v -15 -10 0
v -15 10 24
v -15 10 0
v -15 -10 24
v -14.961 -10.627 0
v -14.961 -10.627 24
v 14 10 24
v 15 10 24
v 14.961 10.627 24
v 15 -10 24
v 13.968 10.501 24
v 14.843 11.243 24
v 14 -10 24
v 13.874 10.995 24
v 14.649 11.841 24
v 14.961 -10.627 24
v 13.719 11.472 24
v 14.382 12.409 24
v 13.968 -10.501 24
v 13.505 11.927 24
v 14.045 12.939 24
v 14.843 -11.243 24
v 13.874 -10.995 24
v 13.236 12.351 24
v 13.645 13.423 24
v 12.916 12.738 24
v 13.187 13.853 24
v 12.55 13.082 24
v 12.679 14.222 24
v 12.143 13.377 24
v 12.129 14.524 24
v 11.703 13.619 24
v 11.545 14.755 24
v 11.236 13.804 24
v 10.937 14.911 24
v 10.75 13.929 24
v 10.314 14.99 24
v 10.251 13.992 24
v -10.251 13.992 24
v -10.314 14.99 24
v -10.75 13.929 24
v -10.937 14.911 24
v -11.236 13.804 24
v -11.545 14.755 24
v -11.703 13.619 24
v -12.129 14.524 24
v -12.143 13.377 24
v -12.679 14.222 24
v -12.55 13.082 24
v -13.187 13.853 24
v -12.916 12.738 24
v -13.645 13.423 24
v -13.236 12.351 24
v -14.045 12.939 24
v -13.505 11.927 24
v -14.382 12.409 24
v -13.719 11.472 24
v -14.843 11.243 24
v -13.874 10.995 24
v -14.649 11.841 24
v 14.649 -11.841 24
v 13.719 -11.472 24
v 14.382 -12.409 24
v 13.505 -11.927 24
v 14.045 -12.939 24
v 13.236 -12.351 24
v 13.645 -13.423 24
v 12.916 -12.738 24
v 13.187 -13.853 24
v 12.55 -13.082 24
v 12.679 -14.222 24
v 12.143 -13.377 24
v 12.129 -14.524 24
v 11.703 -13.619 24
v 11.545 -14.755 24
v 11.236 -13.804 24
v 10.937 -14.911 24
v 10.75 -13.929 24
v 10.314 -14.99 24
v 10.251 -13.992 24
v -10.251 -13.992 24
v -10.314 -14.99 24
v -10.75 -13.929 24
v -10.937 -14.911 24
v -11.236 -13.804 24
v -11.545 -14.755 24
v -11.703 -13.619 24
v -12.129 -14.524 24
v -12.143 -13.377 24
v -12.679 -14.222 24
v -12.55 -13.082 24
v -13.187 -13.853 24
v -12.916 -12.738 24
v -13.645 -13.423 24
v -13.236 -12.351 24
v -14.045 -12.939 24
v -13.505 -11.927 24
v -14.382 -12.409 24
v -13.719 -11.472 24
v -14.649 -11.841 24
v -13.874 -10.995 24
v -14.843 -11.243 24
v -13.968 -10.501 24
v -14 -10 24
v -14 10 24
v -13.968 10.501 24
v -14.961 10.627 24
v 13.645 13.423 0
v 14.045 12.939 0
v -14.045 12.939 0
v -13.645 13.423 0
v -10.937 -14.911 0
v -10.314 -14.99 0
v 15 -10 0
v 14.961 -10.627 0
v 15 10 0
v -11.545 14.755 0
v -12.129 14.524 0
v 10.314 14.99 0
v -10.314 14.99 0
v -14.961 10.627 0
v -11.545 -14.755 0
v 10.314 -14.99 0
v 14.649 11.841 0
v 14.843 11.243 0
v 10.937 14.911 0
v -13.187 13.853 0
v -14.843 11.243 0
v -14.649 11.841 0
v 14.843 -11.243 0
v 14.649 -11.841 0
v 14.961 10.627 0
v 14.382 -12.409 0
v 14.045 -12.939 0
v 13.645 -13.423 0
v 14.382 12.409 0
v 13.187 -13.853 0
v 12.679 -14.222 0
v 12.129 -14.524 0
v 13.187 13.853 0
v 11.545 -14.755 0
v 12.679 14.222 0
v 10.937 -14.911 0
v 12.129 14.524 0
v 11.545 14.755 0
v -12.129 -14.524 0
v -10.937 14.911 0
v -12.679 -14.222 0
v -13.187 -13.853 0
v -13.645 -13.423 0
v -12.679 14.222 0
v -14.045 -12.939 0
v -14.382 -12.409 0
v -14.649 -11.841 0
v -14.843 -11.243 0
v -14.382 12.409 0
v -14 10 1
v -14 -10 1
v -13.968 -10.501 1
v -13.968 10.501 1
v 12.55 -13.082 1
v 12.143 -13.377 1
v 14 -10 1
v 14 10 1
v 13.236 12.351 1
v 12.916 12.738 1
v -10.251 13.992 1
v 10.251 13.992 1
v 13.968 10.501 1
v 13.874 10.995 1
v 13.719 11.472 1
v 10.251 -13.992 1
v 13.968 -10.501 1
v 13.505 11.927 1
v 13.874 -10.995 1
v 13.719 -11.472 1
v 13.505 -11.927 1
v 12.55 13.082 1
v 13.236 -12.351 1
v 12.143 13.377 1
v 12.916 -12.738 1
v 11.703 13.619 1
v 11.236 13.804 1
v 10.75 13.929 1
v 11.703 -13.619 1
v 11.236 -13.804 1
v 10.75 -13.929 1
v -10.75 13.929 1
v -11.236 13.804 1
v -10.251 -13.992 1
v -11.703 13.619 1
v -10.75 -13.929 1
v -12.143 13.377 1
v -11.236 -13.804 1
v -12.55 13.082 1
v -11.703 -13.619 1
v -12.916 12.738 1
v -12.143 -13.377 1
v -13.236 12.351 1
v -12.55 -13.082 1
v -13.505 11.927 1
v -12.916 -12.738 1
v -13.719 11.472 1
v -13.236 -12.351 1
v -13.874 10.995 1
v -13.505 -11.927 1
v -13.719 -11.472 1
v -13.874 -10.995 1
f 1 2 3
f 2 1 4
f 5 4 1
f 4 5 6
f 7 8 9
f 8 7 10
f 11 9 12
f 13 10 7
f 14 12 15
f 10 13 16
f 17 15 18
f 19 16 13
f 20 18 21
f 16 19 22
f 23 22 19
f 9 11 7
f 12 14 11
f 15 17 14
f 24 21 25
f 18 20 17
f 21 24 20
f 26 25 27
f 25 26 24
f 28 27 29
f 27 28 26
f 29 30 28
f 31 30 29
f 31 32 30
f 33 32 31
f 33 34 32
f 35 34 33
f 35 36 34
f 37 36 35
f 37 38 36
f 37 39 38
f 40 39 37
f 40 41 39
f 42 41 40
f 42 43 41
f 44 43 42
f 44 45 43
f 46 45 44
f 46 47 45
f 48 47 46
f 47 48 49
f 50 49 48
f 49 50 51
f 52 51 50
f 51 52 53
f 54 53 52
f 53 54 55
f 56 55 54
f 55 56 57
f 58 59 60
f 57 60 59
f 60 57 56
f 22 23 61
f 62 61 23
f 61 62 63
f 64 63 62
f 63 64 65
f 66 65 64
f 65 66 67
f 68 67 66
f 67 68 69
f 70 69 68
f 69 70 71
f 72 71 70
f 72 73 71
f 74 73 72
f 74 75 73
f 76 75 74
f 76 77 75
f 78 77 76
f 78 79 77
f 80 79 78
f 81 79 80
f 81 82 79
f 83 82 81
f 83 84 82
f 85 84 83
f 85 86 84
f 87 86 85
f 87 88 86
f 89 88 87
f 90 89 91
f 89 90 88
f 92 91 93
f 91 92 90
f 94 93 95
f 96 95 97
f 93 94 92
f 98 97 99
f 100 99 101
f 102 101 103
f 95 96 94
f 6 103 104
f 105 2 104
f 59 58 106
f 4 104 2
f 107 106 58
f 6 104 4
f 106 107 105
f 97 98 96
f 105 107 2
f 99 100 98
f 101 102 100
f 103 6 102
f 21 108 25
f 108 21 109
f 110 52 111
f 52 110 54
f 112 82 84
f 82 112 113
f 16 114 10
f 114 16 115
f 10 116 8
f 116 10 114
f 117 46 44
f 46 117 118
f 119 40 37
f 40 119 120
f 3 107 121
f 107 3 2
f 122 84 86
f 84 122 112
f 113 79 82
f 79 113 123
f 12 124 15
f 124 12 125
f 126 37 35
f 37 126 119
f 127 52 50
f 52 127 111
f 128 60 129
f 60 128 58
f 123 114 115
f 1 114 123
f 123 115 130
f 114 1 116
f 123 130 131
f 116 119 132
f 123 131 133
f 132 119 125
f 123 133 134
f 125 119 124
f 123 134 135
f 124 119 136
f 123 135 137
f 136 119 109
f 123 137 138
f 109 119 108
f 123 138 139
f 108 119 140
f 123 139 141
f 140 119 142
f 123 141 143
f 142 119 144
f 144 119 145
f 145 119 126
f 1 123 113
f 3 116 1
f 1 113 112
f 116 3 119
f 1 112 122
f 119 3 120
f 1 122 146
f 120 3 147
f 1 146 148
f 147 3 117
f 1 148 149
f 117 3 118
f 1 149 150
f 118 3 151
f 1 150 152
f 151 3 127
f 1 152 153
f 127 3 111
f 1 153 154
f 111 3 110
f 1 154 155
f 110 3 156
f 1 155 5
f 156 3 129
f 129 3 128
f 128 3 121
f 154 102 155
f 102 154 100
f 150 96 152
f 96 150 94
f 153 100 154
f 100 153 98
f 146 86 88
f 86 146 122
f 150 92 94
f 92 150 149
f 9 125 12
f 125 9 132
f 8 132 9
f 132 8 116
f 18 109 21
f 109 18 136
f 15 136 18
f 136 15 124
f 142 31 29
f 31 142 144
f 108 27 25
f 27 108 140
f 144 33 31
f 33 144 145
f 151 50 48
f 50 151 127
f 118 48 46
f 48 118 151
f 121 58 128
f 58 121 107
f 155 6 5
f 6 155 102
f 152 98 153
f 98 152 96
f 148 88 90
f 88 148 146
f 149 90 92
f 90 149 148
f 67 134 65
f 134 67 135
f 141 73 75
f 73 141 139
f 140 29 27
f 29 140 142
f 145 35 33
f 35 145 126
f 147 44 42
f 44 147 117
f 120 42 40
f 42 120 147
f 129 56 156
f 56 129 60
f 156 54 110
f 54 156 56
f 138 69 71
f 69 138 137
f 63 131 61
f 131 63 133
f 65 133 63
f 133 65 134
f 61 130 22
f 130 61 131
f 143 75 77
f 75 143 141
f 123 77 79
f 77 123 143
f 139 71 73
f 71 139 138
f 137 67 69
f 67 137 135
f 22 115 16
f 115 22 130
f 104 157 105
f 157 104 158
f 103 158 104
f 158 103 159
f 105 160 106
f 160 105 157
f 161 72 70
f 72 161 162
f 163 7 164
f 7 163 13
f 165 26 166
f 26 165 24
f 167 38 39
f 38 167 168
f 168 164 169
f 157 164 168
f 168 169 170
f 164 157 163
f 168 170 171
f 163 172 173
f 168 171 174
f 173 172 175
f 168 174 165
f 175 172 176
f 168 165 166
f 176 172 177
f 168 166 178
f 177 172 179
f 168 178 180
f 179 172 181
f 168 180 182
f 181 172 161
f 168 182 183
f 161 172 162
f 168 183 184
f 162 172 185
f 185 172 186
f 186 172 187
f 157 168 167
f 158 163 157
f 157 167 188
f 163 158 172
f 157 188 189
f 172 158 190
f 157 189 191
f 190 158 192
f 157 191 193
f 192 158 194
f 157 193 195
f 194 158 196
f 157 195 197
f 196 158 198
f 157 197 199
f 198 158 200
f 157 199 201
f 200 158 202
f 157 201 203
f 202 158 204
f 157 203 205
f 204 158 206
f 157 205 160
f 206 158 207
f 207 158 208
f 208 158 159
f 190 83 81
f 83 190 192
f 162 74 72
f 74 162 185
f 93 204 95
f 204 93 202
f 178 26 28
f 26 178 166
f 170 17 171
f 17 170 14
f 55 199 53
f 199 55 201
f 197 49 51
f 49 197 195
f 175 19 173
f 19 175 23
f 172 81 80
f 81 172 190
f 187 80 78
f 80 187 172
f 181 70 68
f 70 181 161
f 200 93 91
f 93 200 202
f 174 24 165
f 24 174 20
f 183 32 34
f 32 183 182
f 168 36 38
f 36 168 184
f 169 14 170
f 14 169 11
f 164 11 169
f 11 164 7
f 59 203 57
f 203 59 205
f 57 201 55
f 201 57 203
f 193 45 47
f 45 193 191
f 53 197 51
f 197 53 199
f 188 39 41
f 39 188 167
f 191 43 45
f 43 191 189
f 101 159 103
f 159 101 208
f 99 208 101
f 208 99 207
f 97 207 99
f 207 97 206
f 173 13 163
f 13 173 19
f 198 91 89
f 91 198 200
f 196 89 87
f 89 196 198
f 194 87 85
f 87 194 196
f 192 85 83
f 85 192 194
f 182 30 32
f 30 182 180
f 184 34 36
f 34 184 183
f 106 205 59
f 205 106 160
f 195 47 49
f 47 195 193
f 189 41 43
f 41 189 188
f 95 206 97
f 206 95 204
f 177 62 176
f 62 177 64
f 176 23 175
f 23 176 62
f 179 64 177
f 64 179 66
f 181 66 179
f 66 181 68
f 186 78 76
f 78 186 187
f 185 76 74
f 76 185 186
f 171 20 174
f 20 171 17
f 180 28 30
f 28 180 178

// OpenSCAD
$fn = 50;


difference() {
	union() {
		hull() {
			translate(v = [-10.0000000000, 10.0000000000, 0]) {
				cylinder(h = 24, r = 5);
			}
			translate(v = [10.0000000000, 10.0000000000, 0]) {
				cylinder(h = 24, r = 5);
			}
			translate(v = [-10.0000000000, -10.0000000000, 0]) {
				cylinder(h = 24, r = 5);
			}
			translate(v = [10.0000000000, -10.0000000000, 0]) {
				cylinder(h = 24, r = 5);
			}
		}
	}
	union() {
		translate(v = [0, 0, 1]) {
			#hull() {
				translate(v = [-10.0000000000, 10.0000000000, 0]) {
					cylinder(h = 23, r = 4);
				}
				translate(v = [10.0000000000, 10.0000000000, 0]) {
					cylinder(h = 23, r = 4);
				}
				translate(v = [-10.0000000000, -10.0000000000, 0]) {
					cylinder(h = 23, r = 4);
				}
				translate(v = [10.0000000000, -10.0000000000, 0]) {
					cylinder(h = 23, r = 4);
				}
			}
		}
	}
}
